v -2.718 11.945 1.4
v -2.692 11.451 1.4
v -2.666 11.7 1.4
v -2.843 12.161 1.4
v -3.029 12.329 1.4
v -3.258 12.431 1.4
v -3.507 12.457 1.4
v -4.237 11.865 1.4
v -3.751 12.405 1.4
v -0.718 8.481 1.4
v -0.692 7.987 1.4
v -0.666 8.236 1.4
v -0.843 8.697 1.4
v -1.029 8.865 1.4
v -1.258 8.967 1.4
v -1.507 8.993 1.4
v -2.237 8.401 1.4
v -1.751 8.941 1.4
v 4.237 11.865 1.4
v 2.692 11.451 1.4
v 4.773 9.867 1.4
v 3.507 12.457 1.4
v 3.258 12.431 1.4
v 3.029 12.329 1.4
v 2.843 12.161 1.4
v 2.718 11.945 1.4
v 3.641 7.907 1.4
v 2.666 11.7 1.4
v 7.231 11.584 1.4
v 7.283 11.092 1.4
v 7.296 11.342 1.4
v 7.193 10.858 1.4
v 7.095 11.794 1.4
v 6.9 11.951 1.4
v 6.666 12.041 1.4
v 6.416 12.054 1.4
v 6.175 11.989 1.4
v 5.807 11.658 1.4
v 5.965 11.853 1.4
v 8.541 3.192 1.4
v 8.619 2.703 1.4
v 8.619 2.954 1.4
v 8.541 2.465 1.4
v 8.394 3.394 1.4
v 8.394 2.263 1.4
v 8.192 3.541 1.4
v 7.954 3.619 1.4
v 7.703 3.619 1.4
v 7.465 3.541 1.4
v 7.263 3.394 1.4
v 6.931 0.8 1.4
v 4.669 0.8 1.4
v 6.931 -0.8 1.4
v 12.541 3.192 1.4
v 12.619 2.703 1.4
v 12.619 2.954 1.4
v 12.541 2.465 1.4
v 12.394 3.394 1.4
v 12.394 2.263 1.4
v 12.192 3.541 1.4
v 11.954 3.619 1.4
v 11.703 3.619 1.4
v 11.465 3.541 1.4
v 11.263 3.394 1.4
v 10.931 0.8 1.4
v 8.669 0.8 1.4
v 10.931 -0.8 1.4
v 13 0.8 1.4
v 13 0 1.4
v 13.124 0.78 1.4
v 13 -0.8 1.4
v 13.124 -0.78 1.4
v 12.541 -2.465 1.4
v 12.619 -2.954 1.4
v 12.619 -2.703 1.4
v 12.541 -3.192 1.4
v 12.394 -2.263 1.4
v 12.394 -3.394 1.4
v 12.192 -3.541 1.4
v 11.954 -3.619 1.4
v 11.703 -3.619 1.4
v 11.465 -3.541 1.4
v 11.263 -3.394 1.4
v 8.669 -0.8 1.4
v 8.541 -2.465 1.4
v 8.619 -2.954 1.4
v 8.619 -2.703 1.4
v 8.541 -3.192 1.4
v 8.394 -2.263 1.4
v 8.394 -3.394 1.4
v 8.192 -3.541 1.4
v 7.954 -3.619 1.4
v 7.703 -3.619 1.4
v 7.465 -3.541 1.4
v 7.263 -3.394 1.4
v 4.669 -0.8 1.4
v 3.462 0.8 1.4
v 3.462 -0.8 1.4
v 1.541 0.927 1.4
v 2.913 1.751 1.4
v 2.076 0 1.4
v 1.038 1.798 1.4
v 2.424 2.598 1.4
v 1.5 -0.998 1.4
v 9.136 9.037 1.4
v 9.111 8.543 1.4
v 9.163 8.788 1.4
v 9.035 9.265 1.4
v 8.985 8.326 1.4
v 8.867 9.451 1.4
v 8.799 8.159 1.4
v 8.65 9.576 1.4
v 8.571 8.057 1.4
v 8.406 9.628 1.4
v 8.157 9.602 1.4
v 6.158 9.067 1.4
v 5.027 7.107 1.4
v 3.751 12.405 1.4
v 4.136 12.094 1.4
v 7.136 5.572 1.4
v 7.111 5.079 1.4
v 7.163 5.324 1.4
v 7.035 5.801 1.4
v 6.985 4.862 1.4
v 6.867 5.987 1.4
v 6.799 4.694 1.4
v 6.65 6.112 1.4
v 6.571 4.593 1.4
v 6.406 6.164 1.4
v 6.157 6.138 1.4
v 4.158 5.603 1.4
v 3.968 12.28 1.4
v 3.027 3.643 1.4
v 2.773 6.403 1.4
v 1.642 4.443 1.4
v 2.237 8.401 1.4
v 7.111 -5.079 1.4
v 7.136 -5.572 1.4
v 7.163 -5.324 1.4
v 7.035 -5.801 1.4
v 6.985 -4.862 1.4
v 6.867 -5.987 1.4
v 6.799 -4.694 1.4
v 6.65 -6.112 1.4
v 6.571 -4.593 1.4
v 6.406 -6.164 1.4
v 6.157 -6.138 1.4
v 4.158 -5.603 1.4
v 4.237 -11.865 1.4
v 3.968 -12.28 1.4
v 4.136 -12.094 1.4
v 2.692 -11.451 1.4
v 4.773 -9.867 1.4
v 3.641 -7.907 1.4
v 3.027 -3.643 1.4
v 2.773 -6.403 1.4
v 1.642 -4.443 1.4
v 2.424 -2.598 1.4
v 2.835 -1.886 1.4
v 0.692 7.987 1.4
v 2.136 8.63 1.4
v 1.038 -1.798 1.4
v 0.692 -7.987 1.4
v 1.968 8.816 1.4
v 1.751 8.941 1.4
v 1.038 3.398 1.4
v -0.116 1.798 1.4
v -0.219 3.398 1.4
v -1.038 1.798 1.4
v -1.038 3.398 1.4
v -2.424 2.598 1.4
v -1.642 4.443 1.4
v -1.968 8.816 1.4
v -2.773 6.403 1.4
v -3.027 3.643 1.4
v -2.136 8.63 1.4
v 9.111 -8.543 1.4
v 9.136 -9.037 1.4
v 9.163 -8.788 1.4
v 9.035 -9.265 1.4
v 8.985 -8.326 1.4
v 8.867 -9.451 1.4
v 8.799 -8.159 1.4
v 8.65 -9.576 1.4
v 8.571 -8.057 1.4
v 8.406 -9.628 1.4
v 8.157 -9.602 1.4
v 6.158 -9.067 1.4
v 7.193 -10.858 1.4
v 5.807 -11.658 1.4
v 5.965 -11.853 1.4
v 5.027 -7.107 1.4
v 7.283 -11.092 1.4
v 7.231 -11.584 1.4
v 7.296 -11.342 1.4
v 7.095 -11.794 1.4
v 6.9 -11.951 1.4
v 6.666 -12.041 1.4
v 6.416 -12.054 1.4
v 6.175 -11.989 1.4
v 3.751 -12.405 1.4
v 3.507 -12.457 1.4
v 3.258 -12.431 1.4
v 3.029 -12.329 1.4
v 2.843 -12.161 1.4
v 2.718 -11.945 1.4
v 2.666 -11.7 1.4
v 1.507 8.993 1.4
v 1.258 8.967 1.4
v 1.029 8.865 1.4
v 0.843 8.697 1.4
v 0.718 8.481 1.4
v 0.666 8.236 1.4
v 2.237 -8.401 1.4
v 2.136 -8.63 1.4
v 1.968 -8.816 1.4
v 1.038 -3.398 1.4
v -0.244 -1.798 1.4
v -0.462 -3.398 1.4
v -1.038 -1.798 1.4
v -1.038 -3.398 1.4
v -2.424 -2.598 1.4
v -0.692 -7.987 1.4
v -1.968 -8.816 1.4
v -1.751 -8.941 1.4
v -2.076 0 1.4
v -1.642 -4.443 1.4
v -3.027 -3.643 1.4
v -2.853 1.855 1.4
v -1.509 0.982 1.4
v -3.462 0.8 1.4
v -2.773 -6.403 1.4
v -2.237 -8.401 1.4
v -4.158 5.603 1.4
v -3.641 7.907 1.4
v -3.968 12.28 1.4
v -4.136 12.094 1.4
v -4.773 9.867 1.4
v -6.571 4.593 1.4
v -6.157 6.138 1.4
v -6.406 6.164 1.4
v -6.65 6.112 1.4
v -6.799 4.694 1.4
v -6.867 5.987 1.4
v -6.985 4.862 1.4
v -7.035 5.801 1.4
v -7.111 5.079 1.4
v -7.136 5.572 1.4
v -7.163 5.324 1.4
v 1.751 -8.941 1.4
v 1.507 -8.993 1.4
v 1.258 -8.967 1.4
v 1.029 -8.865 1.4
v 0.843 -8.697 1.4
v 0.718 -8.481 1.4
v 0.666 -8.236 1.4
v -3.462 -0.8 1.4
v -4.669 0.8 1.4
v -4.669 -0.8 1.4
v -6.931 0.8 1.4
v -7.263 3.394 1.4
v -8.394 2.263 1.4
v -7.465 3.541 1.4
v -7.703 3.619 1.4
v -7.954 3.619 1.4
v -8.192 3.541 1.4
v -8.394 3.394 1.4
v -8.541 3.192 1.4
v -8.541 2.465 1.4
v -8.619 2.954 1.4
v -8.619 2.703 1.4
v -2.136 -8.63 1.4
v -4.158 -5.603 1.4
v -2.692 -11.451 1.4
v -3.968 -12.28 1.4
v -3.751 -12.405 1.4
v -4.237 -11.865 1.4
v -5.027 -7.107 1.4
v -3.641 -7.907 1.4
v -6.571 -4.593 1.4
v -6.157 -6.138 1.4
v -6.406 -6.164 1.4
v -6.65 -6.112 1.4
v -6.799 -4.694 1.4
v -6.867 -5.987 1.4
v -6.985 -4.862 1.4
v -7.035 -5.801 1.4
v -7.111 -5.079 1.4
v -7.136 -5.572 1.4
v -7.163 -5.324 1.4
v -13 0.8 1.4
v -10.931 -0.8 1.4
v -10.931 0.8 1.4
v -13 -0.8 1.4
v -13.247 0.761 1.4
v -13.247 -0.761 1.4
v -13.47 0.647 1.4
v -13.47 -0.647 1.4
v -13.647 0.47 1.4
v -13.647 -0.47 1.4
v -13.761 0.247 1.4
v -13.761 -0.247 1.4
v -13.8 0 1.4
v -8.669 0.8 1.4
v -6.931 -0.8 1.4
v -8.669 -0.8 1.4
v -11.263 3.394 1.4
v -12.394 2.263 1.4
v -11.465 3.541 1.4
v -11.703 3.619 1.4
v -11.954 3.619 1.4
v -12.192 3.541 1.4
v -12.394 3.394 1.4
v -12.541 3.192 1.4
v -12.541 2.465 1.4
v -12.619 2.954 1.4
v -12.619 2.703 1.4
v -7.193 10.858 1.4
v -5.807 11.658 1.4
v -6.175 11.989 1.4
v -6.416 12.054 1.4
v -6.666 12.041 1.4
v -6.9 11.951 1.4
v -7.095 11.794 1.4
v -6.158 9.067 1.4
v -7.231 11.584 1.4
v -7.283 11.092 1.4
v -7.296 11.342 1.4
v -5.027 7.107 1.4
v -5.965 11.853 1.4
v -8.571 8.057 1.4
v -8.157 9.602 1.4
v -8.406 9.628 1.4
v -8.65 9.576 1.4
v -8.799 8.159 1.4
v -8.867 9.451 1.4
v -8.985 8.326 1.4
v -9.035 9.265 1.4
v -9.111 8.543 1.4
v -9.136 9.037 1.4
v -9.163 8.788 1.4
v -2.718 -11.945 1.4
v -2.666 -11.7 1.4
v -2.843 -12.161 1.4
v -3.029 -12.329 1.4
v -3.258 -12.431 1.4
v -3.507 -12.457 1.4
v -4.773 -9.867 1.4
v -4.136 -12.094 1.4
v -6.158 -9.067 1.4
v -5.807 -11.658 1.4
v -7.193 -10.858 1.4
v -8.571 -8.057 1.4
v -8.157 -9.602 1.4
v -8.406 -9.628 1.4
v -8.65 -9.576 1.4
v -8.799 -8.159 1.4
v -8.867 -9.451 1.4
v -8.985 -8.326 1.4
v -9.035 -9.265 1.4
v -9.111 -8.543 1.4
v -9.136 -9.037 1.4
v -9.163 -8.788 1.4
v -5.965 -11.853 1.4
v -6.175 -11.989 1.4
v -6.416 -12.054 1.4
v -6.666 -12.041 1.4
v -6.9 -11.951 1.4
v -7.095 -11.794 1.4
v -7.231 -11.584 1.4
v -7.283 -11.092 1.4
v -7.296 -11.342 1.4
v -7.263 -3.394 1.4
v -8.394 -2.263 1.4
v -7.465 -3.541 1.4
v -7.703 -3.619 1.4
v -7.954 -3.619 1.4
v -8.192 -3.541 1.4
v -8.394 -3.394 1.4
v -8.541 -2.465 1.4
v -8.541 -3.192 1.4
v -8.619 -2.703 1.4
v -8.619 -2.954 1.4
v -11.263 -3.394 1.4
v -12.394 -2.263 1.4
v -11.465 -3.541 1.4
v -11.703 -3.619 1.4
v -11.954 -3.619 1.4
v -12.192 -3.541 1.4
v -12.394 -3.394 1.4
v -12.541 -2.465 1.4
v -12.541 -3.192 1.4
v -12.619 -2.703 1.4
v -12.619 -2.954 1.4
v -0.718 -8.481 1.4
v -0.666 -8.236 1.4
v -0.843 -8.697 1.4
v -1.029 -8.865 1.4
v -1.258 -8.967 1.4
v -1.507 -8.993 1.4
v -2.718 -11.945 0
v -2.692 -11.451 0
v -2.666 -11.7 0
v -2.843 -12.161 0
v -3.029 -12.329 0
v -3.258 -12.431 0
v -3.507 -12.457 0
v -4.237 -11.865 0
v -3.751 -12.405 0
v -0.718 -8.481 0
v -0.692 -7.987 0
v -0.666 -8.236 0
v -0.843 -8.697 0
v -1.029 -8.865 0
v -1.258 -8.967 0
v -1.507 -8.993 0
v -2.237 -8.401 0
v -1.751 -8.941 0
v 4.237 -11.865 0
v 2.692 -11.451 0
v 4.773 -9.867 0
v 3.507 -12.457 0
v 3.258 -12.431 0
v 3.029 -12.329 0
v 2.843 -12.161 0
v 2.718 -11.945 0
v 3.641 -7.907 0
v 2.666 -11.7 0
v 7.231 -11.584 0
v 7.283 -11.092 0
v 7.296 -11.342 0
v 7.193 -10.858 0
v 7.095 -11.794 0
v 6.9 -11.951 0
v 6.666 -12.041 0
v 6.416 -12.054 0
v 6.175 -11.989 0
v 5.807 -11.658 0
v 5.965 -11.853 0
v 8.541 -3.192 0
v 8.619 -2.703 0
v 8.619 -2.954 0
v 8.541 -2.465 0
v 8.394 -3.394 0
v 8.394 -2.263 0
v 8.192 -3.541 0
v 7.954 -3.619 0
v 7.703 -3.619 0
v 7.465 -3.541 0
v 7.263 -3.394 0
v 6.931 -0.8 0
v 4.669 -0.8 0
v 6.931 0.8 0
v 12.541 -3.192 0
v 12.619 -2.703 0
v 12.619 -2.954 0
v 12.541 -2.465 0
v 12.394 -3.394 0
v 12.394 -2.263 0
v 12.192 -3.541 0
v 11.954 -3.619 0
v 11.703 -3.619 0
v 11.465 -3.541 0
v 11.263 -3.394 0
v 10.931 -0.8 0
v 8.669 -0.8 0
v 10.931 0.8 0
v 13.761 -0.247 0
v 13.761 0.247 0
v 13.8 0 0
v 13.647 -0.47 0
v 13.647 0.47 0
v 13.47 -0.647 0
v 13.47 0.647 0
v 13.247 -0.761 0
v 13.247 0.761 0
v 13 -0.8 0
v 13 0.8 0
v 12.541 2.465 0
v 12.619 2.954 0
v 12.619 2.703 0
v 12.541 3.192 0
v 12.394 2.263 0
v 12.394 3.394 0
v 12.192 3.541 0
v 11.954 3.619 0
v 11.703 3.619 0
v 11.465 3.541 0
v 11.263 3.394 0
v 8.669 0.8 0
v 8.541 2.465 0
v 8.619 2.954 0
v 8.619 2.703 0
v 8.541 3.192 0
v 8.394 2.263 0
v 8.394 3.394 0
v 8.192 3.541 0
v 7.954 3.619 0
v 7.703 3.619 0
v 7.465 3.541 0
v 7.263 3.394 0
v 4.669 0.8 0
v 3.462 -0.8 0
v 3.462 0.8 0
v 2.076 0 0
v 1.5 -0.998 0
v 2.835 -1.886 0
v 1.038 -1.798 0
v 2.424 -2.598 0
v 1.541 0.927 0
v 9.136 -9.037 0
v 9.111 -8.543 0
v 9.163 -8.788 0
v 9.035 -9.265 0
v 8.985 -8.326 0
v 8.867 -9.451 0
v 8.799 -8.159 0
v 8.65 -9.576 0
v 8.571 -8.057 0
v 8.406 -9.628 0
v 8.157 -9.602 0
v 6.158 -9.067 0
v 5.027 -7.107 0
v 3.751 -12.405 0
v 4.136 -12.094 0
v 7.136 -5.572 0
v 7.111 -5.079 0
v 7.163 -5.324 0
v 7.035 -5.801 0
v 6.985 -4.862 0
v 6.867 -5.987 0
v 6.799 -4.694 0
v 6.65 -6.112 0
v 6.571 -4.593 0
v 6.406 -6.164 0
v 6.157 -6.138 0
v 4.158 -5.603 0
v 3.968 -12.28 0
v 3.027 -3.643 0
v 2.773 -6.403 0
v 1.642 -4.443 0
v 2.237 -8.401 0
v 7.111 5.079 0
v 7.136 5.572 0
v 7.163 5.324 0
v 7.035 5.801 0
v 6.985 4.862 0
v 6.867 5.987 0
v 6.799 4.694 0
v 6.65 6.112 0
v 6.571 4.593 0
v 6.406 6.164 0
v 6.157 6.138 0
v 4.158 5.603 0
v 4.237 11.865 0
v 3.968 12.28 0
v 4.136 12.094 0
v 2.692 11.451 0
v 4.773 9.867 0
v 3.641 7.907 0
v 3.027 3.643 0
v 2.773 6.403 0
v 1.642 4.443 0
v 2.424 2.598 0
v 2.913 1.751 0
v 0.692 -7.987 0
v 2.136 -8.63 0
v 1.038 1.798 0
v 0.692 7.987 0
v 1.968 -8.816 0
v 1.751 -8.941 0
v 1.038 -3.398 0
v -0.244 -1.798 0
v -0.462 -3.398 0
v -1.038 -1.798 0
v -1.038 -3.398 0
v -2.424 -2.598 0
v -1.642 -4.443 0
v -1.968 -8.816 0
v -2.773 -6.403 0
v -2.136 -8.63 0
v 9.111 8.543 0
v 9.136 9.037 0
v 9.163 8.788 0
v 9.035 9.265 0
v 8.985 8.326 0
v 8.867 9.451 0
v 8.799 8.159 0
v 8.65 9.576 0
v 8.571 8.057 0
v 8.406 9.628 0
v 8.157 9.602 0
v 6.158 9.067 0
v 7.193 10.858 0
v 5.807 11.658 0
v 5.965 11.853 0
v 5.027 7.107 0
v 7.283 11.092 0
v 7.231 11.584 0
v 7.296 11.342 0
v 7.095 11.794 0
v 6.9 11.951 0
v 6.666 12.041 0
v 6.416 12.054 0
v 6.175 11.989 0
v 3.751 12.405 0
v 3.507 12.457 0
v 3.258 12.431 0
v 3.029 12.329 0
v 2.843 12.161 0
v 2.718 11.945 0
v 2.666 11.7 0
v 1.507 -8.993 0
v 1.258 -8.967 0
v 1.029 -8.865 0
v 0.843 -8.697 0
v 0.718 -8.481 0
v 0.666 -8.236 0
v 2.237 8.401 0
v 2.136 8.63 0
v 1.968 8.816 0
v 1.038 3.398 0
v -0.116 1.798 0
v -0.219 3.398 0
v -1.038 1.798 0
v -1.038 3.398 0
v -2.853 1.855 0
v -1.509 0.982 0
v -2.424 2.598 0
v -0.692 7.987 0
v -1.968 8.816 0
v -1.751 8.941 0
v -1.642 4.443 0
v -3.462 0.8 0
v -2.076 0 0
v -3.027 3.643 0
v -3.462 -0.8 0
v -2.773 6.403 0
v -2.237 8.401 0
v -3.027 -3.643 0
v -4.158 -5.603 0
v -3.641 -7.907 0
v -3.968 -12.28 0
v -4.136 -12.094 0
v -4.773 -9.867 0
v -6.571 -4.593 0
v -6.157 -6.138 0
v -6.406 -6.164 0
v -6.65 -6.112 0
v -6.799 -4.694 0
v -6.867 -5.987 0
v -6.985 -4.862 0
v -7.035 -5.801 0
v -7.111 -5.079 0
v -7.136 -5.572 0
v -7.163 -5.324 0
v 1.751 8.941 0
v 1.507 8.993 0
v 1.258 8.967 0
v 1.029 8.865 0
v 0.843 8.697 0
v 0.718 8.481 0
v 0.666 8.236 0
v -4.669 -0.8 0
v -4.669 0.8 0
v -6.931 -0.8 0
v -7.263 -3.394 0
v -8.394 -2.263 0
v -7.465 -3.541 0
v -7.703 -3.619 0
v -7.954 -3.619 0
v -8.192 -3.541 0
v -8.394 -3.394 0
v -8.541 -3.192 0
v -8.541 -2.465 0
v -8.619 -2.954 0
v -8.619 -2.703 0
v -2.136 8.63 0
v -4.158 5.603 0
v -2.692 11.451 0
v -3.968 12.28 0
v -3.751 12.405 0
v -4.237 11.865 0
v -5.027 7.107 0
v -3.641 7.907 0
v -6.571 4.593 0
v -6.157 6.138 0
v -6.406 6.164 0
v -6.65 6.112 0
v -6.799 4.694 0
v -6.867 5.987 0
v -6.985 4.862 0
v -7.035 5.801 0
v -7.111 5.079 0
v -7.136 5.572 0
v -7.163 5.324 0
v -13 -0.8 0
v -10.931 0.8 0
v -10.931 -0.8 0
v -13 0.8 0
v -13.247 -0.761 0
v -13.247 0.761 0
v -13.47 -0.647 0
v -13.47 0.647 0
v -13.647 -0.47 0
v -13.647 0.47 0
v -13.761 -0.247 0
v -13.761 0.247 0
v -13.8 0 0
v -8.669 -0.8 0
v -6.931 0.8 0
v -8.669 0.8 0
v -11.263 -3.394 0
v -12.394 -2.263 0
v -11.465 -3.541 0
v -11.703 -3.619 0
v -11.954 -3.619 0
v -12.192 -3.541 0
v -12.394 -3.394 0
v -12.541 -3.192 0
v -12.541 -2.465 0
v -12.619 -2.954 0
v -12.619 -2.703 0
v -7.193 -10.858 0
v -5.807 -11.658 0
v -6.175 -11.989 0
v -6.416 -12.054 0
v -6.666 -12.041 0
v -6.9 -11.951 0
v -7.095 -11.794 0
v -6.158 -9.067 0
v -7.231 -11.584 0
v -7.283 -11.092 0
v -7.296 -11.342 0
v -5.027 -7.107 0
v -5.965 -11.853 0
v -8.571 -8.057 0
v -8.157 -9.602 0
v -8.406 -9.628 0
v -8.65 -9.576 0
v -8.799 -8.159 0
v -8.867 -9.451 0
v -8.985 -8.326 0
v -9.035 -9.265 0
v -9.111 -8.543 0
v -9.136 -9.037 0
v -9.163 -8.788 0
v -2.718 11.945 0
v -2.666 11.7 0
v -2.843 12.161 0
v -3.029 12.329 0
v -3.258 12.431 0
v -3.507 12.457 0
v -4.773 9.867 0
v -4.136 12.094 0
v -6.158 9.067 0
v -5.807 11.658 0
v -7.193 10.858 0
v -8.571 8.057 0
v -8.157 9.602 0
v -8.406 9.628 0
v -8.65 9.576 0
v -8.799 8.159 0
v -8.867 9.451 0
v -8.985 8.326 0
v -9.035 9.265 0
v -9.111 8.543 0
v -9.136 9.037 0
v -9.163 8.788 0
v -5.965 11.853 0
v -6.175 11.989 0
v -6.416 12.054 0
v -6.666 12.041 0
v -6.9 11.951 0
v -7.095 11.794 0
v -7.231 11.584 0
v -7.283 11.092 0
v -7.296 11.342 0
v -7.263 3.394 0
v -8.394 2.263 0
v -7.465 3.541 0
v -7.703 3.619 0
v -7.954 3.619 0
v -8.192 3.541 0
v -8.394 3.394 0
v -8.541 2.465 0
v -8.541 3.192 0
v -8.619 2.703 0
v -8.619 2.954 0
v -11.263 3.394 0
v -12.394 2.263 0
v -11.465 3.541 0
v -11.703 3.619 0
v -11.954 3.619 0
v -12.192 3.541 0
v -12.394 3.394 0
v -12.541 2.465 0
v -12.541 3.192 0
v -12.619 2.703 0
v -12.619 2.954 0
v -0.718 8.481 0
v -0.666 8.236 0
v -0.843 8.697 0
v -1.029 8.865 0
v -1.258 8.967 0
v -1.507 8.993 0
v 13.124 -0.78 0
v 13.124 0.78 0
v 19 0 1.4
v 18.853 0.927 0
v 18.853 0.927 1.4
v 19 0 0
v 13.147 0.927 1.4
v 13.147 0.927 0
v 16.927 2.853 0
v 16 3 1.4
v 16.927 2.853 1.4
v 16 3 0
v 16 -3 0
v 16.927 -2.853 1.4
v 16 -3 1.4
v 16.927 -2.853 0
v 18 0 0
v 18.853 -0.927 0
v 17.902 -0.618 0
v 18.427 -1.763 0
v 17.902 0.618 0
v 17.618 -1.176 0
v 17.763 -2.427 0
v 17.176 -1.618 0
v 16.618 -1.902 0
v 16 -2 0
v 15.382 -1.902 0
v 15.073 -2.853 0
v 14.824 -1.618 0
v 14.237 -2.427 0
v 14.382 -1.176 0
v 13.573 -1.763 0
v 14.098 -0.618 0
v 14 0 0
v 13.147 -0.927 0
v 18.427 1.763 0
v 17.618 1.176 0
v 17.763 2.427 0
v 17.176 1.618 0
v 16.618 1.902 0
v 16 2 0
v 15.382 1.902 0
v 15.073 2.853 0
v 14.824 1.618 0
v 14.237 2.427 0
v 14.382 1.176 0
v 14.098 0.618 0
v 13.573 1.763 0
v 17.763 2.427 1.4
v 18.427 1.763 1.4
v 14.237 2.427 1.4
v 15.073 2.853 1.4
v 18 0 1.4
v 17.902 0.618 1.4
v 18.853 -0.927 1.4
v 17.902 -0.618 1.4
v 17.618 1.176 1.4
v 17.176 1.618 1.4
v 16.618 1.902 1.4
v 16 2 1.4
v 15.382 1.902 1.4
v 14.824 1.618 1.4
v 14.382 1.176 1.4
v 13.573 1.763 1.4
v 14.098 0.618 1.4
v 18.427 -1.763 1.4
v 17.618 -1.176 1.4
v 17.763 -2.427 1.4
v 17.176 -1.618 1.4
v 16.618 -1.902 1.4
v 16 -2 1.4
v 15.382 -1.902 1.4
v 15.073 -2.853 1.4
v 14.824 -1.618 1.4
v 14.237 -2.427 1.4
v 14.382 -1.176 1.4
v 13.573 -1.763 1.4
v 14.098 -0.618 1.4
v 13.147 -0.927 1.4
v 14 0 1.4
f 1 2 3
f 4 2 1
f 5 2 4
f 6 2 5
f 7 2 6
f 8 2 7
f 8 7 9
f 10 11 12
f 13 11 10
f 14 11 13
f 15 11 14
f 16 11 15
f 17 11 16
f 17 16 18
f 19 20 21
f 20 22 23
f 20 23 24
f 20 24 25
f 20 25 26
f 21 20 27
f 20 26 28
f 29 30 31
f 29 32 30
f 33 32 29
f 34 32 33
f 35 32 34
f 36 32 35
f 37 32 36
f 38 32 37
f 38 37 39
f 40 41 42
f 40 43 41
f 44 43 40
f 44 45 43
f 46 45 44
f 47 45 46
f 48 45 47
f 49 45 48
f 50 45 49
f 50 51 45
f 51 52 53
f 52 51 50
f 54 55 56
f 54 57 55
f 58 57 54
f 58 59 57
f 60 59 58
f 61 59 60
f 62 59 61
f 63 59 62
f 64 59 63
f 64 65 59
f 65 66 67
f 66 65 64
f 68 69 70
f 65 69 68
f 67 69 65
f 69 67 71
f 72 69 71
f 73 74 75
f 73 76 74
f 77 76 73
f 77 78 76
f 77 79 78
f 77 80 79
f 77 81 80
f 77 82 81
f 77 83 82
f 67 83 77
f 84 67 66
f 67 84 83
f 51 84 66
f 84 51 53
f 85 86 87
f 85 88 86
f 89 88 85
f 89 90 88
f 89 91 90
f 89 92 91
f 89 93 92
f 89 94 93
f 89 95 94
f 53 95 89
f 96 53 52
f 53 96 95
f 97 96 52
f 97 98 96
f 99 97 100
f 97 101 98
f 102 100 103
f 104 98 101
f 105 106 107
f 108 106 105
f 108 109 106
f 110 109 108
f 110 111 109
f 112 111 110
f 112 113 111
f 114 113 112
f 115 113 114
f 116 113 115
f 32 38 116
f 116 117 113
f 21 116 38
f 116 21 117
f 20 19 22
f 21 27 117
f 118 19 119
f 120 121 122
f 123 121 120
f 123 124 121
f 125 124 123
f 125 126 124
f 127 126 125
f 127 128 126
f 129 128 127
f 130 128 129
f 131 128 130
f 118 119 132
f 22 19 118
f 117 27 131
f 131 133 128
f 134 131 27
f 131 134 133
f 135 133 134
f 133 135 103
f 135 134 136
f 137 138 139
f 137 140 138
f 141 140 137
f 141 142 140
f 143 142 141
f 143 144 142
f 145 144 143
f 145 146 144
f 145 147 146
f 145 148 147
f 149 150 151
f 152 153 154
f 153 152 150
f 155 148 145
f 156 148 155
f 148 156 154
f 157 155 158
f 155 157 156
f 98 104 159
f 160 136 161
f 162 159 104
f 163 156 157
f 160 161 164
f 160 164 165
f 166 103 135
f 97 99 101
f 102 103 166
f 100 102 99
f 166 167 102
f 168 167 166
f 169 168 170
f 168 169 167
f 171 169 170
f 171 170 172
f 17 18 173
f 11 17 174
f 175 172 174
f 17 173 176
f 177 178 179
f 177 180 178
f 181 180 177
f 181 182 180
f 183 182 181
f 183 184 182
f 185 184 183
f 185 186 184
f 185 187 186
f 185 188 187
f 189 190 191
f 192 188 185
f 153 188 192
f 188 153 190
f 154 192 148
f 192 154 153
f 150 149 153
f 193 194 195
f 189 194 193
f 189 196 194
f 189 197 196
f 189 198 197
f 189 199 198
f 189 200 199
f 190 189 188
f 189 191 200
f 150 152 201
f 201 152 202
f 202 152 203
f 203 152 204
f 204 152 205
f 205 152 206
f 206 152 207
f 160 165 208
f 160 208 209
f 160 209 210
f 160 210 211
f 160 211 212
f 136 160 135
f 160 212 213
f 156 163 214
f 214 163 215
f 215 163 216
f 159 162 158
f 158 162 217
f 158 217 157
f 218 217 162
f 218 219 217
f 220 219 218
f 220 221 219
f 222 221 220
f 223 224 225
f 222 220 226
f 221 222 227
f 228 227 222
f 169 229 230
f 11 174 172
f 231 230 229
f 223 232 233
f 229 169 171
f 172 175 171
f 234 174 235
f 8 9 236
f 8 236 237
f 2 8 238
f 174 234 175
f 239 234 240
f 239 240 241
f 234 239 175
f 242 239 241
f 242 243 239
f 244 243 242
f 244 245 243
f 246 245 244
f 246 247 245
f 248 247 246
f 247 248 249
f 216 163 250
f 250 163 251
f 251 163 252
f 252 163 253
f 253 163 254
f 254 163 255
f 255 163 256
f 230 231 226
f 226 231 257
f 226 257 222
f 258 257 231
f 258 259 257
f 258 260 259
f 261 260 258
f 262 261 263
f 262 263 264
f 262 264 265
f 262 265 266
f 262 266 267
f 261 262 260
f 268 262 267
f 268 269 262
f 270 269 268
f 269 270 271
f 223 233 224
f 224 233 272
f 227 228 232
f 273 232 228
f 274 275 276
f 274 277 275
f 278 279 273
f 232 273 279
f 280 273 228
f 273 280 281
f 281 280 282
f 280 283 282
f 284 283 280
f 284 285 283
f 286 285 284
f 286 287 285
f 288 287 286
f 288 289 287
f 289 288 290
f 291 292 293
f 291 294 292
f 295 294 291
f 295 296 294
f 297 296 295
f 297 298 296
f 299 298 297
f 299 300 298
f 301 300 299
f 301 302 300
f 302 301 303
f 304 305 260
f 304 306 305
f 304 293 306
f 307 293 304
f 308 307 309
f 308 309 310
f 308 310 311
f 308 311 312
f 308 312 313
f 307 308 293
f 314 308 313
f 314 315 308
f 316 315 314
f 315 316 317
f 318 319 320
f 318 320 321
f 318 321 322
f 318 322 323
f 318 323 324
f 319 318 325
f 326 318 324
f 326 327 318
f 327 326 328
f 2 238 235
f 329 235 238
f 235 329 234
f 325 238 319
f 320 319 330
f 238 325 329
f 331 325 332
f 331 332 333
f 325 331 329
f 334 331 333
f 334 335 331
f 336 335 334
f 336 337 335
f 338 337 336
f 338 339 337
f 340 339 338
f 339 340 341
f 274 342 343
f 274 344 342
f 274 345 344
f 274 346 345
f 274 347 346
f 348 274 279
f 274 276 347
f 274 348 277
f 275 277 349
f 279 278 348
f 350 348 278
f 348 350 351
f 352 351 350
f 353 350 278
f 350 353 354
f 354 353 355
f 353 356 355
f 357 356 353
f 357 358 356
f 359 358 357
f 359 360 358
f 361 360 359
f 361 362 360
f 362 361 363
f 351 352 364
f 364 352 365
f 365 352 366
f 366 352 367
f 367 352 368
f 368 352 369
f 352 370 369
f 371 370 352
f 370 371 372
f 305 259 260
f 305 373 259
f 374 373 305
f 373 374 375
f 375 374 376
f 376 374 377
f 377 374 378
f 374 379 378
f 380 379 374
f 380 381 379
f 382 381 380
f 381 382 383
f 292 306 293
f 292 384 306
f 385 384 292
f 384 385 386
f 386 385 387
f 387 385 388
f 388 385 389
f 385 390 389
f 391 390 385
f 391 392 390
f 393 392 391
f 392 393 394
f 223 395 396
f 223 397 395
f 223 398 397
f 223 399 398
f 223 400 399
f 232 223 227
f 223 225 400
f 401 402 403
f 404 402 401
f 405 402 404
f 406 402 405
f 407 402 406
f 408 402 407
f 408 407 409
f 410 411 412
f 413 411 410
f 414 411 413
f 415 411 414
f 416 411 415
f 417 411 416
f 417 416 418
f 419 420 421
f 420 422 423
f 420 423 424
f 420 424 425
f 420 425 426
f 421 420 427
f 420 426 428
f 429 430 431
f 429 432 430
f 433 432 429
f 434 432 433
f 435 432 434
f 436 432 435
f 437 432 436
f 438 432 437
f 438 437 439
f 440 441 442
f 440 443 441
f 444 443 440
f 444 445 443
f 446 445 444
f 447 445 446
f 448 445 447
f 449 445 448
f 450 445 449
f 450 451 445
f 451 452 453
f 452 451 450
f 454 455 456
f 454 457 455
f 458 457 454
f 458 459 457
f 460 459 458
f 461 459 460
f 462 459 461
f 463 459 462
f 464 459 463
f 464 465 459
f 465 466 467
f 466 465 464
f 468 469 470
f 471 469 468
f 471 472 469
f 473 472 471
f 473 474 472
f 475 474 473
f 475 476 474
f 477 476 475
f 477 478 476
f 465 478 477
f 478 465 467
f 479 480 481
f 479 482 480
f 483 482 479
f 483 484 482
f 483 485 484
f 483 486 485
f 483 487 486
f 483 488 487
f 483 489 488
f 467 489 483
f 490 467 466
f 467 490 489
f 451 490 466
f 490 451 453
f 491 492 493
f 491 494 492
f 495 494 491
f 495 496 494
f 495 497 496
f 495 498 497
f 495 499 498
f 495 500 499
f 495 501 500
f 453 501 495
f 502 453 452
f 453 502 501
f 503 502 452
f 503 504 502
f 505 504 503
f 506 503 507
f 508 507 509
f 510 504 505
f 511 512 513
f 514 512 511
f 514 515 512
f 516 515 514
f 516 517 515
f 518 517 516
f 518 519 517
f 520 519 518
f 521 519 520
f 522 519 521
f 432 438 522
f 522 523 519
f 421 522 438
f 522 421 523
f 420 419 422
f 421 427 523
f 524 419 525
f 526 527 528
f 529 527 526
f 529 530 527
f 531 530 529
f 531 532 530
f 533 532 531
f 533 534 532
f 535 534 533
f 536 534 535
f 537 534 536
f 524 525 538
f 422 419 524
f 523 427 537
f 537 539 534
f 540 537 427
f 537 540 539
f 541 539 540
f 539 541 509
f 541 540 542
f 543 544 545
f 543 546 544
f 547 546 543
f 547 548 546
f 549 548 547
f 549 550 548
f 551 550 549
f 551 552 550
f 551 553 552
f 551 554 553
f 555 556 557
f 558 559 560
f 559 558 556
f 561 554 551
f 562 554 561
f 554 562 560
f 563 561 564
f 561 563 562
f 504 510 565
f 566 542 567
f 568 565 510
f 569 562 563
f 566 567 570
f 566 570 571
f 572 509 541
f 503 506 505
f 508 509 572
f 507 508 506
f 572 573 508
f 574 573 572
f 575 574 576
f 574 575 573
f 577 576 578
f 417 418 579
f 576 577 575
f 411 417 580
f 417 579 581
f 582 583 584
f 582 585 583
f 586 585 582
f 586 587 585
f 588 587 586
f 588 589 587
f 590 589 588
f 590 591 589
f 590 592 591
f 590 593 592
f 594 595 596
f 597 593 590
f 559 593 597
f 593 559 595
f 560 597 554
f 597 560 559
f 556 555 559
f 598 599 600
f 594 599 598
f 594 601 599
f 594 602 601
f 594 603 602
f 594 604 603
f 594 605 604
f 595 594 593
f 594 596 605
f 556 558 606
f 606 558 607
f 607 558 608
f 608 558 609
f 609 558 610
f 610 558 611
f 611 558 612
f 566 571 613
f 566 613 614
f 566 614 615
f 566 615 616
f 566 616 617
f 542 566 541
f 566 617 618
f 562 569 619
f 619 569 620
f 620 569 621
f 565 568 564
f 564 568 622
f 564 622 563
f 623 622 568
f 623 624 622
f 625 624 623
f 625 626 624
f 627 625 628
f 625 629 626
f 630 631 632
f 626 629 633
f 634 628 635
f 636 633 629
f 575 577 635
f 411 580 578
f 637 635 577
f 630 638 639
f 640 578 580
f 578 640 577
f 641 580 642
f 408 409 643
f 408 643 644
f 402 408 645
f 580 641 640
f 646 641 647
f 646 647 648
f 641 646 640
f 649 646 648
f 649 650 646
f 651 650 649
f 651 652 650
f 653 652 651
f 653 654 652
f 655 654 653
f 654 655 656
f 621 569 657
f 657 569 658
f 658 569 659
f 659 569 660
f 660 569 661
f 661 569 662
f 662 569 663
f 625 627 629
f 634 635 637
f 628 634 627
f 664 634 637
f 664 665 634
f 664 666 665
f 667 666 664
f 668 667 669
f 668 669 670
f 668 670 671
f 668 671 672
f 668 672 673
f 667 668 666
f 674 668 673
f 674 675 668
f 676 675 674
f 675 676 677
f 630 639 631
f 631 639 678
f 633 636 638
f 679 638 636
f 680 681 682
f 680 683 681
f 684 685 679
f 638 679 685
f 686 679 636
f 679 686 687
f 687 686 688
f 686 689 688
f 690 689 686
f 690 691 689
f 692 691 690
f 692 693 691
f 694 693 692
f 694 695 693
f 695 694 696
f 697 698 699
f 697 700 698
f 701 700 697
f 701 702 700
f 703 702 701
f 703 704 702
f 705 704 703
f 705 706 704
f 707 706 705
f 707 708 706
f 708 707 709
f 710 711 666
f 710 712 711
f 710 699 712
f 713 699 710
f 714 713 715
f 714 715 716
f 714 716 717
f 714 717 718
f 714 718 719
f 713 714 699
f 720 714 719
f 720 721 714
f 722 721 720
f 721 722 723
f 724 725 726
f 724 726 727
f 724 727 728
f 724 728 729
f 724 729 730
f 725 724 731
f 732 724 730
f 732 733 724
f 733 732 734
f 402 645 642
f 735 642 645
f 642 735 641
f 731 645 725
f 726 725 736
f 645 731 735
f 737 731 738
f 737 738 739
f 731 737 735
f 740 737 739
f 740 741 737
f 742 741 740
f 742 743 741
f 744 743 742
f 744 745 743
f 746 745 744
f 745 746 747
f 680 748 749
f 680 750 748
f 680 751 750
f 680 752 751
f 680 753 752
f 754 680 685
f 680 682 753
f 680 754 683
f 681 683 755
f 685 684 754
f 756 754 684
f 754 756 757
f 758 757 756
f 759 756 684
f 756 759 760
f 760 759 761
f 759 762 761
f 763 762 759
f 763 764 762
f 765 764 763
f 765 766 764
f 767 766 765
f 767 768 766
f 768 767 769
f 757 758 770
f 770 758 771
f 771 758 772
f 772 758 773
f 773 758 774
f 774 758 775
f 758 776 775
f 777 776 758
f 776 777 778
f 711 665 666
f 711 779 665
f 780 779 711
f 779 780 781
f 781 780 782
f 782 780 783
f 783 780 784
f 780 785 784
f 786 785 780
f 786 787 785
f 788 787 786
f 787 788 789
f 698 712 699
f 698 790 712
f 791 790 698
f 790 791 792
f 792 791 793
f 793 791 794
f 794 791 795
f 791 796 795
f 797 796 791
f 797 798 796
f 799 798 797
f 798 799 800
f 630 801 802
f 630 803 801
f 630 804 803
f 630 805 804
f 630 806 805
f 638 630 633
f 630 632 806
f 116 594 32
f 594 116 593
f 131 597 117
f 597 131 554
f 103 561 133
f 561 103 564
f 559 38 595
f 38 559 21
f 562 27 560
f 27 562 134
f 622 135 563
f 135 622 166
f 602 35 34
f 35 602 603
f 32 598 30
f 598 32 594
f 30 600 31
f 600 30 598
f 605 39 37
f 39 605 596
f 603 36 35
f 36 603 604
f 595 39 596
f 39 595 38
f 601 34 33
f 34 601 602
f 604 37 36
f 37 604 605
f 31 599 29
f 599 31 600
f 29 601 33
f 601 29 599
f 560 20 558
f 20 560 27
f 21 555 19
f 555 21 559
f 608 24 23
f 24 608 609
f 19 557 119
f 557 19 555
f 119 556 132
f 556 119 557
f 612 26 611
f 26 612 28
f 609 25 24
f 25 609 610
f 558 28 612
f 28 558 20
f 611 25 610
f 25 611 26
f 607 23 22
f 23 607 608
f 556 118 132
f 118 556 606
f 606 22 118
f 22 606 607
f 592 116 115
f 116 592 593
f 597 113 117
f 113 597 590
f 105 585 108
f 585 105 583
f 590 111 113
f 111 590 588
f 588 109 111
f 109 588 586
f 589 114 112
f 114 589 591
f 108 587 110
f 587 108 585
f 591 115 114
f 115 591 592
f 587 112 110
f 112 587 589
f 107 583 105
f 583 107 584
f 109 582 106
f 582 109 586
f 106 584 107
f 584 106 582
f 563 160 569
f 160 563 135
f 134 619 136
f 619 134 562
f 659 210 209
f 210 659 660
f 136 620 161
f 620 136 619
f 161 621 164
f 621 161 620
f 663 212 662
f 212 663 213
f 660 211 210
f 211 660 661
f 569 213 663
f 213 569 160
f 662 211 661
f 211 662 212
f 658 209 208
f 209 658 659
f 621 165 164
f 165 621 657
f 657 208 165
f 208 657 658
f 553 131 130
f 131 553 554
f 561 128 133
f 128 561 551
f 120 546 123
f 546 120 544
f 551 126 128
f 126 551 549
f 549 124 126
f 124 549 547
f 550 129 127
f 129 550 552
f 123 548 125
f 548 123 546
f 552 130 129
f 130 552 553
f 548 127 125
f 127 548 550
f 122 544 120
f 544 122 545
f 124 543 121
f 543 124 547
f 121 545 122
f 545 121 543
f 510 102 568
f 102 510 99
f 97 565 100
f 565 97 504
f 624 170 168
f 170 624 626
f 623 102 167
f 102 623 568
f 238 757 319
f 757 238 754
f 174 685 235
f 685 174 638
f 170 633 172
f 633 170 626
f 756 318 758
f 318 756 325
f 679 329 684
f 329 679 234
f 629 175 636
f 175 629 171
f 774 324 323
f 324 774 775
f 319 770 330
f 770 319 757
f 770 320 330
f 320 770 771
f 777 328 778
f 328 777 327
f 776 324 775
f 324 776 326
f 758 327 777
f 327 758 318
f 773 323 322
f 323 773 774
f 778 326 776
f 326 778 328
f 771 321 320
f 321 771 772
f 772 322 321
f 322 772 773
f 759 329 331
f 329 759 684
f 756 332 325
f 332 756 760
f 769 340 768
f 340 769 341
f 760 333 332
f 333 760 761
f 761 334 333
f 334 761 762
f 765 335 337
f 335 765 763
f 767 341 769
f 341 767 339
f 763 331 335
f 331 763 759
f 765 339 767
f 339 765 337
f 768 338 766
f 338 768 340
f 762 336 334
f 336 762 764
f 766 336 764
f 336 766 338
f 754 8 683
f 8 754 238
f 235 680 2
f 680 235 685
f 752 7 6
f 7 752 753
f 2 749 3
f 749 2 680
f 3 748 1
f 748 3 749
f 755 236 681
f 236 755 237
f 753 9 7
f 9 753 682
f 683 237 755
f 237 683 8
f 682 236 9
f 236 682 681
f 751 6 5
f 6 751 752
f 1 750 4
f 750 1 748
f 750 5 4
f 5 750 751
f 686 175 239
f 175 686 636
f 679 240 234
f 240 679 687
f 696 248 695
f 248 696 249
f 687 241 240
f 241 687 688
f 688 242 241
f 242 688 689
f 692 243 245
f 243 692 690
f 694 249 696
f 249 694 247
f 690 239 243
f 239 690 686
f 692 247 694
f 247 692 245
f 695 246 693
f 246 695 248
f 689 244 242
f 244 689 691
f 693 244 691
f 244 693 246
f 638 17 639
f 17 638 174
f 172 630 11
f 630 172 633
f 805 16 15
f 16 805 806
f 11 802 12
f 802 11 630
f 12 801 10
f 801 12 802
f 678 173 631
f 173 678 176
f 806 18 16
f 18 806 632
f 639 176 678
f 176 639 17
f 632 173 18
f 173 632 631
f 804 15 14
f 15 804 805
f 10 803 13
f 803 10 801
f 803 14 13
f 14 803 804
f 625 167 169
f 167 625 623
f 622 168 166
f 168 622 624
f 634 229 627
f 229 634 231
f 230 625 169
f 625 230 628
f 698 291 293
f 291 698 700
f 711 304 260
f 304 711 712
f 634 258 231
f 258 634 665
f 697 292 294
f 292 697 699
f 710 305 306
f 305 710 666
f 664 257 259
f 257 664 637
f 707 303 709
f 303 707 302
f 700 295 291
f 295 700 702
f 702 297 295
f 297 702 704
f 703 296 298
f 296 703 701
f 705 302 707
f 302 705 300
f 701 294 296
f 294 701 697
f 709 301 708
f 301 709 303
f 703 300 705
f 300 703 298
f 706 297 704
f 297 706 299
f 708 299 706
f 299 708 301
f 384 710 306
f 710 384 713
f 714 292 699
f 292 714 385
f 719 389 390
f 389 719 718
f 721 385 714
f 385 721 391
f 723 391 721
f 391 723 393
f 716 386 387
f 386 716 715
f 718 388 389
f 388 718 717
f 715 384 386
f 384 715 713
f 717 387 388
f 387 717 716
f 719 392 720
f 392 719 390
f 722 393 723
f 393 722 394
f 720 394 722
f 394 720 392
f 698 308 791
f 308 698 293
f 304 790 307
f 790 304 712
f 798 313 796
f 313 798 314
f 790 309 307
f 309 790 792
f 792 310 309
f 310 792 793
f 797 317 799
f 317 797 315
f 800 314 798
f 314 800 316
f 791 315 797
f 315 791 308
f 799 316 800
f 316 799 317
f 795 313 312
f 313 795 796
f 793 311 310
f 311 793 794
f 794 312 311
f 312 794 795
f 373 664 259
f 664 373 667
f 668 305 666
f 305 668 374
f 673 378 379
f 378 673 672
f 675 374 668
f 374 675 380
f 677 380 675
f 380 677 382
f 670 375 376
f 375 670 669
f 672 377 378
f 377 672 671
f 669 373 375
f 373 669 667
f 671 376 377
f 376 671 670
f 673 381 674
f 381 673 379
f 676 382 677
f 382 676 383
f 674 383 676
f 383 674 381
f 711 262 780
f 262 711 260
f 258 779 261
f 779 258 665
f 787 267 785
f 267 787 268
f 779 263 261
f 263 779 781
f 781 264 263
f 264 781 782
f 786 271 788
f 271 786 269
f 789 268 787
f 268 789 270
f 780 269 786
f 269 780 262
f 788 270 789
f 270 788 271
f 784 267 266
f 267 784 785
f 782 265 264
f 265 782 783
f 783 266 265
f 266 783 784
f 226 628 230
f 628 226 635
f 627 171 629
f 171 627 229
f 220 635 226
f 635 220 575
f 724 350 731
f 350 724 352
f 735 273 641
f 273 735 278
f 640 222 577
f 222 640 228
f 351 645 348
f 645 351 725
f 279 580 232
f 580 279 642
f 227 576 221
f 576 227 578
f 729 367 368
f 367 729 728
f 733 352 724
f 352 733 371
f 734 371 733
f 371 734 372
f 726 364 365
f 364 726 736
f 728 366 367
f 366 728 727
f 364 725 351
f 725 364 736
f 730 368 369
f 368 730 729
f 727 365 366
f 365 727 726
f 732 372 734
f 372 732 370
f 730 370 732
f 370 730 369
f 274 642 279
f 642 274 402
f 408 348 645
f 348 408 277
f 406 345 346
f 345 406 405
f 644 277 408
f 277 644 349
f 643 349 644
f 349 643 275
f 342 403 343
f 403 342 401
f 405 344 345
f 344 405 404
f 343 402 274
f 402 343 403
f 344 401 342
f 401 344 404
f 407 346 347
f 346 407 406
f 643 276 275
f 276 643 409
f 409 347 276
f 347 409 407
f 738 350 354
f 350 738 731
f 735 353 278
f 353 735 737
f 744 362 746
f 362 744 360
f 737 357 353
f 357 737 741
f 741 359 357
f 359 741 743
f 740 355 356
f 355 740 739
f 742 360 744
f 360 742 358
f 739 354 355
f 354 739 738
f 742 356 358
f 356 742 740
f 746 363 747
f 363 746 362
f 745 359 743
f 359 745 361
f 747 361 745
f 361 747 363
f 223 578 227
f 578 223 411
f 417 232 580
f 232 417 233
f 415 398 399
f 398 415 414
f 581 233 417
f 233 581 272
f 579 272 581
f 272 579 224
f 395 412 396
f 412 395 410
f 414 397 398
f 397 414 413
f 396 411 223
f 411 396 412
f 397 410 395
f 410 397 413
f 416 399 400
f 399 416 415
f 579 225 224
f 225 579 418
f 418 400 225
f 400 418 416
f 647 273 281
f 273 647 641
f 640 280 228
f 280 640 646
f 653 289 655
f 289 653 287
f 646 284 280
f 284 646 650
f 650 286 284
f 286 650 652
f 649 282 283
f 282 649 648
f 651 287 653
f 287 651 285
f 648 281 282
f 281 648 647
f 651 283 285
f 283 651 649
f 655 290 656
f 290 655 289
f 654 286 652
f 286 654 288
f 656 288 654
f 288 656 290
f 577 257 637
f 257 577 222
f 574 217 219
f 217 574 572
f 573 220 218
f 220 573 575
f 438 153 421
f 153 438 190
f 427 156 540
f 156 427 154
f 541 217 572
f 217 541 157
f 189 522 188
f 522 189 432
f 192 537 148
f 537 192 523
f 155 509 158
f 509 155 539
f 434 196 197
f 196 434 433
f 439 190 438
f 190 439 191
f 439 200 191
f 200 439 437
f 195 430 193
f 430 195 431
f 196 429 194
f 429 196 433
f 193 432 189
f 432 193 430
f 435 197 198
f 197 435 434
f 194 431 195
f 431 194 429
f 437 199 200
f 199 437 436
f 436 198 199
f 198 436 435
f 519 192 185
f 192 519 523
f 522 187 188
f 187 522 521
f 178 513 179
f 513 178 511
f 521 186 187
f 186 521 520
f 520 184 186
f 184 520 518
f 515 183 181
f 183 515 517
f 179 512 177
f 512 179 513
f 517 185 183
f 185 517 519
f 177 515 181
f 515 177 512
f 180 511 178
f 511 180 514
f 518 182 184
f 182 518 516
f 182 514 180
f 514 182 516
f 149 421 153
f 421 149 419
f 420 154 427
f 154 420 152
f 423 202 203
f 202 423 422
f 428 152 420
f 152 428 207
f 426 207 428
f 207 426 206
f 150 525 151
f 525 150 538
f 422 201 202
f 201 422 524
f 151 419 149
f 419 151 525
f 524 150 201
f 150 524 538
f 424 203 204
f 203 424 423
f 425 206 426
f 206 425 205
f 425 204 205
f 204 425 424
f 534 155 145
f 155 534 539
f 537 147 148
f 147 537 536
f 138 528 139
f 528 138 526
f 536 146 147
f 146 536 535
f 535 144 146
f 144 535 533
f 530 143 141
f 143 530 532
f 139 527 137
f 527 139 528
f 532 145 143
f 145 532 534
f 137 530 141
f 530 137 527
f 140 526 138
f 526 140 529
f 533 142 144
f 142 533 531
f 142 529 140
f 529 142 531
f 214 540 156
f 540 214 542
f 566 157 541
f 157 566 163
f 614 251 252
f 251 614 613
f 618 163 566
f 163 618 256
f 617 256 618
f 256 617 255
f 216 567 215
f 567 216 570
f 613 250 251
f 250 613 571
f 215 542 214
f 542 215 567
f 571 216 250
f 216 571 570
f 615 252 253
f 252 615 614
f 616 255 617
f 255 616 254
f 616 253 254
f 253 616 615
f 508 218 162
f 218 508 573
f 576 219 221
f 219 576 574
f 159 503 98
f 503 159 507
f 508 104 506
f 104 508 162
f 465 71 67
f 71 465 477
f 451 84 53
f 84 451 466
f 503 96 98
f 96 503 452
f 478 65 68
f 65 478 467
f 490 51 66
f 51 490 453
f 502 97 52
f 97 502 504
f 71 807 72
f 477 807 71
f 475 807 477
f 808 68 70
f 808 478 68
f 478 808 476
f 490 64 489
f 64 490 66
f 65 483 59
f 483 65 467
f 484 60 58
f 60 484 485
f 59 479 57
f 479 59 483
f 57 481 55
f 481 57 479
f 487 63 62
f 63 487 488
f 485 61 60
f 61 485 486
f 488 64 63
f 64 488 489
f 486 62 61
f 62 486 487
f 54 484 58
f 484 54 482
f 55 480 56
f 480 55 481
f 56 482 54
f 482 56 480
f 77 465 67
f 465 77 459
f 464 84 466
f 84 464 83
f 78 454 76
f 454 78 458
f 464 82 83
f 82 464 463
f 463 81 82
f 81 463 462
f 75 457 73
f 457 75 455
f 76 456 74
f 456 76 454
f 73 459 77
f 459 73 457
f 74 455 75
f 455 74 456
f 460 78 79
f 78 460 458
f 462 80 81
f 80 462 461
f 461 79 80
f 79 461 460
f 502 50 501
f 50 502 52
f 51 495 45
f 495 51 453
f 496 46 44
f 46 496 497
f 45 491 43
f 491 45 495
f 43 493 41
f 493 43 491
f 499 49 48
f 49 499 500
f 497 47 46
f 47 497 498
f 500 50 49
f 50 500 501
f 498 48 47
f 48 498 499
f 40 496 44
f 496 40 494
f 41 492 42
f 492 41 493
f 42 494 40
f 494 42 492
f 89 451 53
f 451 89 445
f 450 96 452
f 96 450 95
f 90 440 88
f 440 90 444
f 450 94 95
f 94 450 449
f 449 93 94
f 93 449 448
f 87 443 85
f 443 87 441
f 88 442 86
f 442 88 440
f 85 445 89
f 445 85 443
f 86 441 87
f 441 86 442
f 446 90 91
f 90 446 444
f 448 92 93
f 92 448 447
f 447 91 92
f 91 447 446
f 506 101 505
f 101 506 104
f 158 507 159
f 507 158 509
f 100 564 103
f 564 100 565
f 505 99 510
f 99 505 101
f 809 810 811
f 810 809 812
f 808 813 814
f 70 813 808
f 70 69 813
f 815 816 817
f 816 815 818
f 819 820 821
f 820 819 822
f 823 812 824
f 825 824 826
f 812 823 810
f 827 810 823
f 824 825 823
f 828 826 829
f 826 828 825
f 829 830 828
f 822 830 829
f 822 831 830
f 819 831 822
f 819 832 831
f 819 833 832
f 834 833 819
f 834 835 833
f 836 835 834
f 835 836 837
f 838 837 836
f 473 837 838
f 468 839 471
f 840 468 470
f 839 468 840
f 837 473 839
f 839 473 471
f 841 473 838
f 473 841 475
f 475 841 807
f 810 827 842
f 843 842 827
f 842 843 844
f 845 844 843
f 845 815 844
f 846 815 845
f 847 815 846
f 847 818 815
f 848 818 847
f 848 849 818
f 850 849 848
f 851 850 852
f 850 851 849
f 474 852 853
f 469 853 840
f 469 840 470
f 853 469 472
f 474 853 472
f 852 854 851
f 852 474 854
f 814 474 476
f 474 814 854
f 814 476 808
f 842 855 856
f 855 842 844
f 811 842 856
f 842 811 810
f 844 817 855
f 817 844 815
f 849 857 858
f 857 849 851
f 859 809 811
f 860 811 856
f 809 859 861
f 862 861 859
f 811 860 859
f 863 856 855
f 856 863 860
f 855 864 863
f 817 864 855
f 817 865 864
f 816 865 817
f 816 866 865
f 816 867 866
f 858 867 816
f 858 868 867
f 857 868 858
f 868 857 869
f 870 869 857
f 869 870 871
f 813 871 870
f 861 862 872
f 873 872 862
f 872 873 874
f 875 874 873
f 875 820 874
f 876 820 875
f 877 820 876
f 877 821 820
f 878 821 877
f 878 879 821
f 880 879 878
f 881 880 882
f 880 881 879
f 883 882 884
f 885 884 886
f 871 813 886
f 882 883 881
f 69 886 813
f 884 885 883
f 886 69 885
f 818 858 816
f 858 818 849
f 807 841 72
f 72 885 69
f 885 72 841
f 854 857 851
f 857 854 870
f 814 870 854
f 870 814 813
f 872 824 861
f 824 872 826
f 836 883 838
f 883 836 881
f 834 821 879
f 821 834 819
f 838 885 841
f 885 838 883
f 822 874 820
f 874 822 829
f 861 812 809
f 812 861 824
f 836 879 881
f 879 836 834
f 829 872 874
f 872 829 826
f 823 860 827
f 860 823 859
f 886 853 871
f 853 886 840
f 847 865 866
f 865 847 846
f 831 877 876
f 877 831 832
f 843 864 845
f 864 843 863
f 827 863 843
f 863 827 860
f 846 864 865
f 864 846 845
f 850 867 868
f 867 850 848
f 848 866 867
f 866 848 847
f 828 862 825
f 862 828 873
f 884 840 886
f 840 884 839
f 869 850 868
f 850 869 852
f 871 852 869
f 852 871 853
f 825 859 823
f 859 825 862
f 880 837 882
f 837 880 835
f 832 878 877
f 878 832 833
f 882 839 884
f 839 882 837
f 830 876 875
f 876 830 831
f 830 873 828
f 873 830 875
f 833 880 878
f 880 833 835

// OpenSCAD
// Tiny Snowflake
// by Ming-Dao Chia

// Settings
height=1.4; // Total thickness of keychain
circle_res=20; // Resolution of circles
keyring=4; // Size of keyring hole in mm
thickness=1.6; // Line width

module sf_round_line(length, thickness, height){
    union(){
        // start of line
        cylinder(d=thickness,h=height, $fn=circle_res);
        // main length
        translate([0,-thickness/2,0])
        cube([length,thickness,height]);
        // end of line
        translate([length,0,0])
        cylinder(d=thickness,h=height, $fn=circle_res);
    }
}

module sf_ring(){
    translate([0,0,height/2]) // raise to the level of the rest of model
    difference(){
        cylinder(d=keyring+2,h=height, $fn=circle_res, center=true);
        cylinder(d=keyring,h=height, $fn=circle_res, center=true);
    }
}

module sf_arm(){
    translate([3,0,0])
    union(){
        // center line
        sf_round_line(10, thickness, height);
        // arms
        translate([6,0,0]) // upper right
        rotate([0,0,45])
        sf_round_line(4, thickness, height);
        translate([6,0,0]) // upper left
        rotate([0,0,-45])
        sf_round_line(4, thickness, height);
        translate([2,0,0]) // lower right
        rotate([0,0,45])
        sf_round_line(4, thickness, height);
        translate([2,0,0]) // lower right
        rotate([0,0,-45])
        sf_round_line(4, thickness, height);
        // center ring
        translate([0,0,0]) // right 
        rotate([0,0,-120])
        sf_round_line(3, thickness, height);
        translate([0,0,0]) // left
        rotate([0,0,120])
        sf_round_line(3, thickness, height);
    }
}

module sf_arms(num){
    function angle(i,num)=i*(360/num); // evenly spread arms in a circle
    for(i=[1:num]){
        // add an arm each rotation
        rotate([0,0,angle(i,num)])
        sf_arm();
    }
}

module snowflake(){
    sf_arms(6); // modify this for number of arms
    // keyring
    translate([14+keyring/2,0,0])
    sf_ring();
}

//sf_arm(); // use to see just one arm at a time
snowflake();
